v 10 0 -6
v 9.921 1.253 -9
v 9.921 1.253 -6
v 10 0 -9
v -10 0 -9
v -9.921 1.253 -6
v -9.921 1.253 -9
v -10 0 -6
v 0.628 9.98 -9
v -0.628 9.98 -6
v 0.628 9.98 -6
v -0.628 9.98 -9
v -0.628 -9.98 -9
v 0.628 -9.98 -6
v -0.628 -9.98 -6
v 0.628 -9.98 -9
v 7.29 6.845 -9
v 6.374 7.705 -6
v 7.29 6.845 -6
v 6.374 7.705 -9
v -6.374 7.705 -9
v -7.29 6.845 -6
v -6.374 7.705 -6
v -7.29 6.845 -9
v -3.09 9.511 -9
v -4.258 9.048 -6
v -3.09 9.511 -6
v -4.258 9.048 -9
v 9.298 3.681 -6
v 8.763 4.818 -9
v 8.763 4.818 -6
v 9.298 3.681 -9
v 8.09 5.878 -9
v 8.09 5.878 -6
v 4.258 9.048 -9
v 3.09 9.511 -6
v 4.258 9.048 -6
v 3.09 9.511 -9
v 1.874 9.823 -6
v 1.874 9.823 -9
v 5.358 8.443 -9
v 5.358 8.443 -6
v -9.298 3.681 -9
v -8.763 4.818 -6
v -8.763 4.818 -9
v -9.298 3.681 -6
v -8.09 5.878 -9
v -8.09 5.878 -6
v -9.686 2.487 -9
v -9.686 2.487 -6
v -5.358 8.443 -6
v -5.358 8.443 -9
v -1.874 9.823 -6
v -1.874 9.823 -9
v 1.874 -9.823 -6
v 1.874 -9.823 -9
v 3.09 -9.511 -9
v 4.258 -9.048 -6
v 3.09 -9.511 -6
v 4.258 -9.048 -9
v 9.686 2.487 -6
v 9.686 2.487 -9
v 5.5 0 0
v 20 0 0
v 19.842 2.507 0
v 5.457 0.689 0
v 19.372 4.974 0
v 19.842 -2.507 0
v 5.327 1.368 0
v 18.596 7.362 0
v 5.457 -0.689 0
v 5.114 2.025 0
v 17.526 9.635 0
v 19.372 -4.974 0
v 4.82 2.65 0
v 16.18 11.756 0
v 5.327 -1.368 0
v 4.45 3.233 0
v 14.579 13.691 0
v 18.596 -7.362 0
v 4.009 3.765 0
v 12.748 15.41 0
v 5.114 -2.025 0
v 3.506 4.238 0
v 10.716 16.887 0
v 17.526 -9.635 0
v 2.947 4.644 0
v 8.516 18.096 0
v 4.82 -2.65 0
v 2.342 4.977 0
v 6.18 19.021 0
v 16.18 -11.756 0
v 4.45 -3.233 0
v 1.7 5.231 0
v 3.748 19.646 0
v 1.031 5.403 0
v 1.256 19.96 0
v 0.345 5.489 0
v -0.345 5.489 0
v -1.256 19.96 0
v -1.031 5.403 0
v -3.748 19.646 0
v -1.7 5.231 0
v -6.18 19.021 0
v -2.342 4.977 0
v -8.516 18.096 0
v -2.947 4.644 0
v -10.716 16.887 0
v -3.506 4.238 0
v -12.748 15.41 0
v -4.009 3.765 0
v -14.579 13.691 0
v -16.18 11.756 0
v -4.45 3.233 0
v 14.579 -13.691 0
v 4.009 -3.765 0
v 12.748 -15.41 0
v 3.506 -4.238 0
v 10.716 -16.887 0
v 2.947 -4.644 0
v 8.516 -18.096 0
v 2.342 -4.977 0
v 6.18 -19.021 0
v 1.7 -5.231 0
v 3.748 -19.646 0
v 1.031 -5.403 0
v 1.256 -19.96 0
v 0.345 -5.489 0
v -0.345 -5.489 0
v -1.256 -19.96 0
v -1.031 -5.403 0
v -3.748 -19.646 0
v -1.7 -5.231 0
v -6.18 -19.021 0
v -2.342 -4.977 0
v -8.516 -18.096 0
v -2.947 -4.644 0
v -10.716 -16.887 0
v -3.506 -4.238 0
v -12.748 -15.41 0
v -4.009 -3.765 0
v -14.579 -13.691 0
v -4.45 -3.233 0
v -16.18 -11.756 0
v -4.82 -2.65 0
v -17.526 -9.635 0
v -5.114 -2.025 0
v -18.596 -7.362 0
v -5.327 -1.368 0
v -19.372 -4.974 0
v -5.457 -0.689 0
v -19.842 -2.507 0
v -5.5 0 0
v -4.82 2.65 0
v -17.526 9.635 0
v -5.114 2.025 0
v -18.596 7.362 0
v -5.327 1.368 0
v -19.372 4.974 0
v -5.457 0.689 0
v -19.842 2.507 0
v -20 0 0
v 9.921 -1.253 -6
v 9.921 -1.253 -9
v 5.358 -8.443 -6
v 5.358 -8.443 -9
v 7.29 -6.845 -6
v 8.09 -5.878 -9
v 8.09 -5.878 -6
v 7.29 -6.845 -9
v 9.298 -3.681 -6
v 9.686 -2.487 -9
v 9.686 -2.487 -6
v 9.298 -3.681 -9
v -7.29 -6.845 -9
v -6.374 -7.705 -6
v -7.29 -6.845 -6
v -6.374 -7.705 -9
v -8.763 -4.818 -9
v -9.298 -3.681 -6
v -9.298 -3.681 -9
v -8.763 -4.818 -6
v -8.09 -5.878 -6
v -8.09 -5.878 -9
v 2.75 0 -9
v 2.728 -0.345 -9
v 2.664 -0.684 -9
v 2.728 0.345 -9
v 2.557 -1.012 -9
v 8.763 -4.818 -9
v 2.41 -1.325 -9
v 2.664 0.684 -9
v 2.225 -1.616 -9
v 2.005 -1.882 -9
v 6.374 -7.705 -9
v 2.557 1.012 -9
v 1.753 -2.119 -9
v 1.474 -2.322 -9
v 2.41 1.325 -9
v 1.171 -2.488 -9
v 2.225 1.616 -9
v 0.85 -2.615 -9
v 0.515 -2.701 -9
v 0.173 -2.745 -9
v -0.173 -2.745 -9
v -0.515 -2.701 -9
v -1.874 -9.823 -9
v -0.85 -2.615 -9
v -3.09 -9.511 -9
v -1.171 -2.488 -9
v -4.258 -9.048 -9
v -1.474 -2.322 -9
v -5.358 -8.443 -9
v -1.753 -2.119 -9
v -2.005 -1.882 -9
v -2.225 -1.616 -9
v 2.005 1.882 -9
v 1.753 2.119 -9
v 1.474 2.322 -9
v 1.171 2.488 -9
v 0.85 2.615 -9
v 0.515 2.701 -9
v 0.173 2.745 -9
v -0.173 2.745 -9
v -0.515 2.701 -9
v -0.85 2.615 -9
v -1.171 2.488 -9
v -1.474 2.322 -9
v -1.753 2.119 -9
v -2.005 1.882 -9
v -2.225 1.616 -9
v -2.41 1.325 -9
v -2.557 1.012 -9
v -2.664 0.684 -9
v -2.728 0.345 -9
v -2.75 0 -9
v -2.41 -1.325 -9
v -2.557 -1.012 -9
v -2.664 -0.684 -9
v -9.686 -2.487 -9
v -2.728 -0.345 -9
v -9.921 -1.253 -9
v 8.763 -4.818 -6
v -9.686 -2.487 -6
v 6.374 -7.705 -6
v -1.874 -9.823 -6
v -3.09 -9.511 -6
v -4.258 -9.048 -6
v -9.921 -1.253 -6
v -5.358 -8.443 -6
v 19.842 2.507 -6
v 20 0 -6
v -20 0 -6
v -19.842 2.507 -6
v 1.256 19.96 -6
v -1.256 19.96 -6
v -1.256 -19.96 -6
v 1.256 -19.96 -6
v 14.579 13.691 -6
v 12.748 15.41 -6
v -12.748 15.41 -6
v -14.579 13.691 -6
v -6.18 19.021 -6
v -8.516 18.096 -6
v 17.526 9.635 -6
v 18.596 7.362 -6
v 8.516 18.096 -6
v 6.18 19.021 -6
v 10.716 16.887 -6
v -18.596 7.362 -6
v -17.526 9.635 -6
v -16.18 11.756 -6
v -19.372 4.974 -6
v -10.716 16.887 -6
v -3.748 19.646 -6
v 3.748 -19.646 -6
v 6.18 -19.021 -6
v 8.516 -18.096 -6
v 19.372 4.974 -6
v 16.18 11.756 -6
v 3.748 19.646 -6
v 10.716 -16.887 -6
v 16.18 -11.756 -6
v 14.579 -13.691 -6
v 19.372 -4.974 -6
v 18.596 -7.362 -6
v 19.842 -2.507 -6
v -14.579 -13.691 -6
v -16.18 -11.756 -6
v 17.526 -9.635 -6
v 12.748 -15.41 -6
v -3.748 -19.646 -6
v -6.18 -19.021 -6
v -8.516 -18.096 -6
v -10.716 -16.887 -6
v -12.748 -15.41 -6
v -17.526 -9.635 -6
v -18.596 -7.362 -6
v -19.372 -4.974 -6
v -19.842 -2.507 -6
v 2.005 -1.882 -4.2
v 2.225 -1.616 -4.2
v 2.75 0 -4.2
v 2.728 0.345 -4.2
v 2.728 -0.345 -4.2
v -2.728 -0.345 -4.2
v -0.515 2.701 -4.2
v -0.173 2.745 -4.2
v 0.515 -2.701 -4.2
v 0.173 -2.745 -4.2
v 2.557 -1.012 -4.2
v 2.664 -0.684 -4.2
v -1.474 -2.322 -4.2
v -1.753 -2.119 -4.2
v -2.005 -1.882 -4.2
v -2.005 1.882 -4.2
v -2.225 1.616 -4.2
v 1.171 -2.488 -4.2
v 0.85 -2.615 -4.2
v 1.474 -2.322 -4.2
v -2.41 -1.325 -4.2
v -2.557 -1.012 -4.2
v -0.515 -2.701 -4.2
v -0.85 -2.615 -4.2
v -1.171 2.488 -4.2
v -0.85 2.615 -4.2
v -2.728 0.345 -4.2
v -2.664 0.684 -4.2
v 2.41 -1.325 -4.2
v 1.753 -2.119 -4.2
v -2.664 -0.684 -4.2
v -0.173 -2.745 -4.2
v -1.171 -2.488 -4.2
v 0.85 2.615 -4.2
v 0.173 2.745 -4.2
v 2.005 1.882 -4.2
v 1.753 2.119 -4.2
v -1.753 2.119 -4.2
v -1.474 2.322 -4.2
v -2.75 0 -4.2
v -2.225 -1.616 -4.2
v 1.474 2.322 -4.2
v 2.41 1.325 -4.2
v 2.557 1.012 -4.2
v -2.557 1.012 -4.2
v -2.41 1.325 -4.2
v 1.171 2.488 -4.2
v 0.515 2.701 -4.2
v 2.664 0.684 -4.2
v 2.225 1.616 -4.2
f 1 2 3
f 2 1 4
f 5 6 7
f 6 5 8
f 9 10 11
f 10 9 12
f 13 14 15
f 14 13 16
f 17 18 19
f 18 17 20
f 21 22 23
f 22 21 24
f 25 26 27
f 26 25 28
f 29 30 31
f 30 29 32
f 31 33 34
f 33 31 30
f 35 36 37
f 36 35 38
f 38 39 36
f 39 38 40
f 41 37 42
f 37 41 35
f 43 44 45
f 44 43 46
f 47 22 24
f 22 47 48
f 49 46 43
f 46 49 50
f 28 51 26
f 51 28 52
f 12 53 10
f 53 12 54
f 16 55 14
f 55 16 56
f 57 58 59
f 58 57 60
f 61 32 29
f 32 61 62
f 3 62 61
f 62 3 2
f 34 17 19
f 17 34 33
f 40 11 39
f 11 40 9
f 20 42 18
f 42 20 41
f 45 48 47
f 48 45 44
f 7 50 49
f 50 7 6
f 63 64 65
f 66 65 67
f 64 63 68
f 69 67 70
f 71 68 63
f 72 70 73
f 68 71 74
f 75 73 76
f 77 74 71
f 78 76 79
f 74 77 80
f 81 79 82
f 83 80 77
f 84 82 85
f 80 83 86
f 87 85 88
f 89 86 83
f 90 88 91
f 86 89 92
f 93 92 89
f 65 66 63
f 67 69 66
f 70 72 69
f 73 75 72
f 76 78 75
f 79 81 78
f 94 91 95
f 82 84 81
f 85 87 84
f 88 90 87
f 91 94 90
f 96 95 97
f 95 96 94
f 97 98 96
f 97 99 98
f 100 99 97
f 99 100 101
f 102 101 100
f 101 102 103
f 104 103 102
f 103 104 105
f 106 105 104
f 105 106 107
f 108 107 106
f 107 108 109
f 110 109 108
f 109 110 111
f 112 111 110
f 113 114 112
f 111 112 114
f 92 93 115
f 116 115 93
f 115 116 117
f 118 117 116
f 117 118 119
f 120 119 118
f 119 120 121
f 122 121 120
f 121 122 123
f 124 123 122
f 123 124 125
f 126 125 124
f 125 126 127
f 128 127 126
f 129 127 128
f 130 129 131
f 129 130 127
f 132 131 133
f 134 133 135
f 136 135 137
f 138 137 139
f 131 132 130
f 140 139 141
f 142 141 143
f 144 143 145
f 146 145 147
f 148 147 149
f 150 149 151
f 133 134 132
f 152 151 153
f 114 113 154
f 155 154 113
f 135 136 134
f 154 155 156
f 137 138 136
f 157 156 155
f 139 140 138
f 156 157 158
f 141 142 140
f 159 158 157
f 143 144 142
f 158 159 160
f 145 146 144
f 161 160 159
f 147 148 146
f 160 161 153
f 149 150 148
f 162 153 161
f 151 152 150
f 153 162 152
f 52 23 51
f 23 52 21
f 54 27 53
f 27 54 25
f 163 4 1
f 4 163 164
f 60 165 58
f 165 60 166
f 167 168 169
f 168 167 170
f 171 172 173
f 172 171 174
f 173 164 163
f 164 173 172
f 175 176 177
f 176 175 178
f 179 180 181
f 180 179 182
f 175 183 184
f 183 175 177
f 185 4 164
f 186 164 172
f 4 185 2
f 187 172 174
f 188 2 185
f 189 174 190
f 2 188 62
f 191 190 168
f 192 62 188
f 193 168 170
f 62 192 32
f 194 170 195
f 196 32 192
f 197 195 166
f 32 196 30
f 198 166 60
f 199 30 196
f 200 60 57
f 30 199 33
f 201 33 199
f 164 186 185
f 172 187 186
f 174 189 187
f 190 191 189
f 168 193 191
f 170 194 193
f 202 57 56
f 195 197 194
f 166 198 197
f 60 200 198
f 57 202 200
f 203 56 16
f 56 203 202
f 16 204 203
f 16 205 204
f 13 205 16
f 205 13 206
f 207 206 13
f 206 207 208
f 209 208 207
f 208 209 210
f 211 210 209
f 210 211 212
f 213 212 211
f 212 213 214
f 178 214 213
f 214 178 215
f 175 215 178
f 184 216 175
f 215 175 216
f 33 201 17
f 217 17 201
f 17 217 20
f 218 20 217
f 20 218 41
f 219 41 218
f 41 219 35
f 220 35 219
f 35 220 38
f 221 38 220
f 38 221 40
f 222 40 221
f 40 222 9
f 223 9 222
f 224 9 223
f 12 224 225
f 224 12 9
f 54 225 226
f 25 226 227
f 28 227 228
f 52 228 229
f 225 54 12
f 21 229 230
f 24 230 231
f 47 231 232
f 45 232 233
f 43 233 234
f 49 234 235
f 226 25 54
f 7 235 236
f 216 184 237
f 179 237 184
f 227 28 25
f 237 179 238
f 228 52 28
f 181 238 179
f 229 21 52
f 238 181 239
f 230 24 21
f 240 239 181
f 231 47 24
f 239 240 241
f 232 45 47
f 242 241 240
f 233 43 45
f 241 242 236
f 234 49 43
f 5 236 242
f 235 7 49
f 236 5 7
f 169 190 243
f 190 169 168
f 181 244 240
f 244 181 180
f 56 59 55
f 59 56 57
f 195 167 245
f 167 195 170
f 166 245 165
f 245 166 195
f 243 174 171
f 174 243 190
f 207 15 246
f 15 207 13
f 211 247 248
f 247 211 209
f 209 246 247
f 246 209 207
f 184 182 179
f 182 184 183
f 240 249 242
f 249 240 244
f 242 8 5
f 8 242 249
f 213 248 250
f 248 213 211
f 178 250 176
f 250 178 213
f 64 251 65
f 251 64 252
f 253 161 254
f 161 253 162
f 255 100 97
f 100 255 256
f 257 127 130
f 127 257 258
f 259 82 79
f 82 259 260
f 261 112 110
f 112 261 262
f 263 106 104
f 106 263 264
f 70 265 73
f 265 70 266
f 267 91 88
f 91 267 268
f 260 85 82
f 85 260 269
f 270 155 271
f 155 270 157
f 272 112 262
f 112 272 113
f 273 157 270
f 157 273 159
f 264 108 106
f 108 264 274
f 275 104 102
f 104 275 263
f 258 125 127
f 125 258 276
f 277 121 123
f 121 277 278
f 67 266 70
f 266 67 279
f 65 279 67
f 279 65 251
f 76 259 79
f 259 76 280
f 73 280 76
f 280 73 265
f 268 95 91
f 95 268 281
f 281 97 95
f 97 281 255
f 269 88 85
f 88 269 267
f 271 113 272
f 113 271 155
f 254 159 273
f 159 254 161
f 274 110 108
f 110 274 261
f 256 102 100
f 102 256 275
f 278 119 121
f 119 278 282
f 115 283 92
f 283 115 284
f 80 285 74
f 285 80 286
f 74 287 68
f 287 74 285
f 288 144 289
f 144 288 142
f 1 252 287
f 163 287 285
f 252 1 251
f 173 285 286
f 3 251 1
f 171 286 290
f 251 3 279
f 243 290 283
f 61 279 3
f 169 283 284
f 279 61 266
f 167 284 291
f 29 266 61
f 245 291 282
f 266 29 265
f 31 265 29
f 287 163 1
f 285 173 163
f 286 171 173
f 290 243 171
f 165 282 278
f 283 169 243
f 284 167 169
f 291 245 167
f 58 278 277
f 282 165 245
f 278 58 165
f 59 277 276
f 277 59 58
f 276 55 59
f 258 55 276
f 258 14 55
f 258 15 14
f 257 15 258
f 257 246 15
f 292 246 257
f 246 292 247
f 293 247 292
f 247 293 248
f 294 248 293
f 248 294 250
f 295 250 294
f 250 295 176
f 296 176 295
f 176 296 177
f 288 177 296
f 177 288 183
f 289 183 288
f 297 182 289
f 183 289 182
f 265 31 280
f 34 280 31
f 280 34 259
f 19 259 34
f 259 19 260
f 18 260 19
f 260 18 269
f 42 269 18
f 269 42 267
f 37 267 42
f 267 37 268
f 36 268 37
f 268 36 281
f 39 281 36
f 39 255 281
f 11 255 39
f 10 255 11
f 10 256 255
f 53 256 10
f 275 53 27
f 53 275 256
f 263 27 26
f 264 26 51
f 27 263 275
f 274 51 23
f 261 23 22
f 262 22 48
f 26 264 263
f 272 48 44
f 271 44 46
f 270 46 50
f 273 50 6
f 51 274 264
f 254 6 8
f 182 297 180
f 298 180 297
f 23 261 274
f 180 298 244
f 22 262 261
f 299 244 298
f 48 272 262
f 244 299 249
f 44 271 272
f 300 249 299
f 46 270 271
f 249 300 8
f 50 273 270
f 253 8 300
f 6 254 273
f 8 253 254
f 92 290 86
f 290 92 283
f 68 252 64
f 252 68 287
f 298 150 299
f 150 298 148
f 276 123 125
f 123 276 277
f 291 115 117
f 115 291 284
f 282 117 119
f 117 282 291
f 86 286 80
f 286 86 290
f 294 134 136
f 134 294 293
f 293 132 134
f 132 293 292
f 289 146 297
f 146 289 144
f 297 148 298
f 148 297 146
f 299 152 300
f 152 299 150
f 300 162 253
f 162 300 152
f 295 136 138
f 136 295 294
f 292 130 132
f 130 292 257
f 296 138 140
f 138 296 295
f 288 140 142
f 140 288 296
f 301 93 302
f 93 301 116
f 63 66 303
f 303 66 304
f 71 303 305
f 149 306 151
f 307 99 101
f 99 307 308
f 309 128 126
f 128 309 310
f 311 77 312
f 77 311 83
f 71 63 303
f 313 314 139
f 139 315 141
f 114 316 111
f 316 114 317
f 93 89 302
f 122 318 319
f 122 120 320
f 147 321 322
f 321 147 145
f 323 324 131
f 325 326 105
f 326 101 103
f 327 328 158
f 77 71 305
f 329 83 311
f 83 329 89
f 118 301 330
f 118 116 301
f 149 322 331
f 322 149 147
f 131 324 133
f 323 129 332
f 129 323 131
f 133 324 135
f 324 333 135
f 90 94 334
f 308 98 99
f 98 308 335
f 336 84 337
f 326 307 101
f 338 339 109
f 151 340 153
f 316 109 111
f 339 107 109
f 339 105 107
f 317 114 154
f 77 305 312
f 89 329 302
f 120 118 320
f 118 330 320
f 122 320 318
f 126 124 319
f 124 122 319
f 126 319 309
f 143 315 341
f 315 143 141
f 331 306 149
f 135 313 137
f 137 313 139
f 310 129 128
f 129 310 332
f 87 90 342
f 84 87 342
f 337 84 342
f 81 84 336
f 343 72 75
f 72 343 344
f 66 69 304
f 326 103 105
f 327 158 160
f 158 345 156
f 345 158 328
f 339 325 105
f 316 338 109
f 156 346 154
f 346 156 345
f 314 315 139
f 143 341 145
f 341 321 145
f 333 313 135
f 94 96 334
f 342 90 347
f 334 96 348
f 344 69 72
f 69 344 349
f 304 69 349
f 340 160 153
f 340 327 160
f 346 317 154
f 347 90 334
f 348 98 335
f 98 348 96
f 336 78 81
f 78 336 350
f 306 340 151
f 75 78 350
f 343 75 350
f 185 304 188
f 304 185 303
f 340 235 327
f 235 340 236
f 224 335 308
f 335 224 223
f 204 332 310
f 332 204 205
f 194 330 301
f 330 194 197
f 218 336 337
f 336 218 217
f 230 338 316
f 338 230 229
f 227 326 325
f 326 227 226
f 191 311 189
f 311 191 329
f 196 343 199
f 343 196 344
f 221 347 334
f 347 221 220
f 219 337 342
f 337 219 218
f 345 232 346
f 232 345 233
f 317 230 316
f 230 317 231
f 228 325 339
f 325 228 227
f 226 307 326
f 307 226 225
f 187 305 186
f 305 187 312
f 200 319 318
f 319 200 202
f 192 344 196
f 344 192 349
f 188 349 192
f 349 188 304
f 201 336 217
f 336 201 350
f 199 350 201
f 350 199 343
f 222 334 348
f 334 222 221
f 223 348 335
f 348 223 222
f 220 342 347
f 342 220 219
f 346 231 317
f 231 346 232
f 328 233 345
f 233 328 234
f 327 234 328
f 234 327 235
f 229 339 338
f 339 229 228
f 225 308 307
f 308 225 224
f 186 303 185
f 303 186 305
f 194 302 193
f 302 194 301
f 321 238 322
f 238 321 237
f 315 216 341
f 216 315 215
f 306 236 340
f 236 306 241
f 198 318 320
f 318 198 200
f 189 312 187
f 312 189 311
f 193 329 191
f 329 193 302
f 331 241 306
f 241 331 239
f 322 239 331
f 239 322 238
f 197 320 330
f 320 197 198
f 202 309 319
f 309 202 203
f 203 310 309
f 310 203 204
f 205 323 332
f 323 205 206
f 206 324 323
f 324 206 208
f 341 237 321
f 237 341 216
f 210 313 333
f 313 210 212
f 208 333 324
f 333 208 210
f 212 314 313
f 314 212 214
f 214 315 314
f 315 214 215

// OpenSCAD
$fn = 50;


difference() {
	union() {
		translate(v = [0, 0, -9.0000000000]) {
			cylinder(h = 9, r = 10.0000000000);
		}
		translate(v = [0, 0, -6.0000000000]) {
			cylinder(h = 6, r = 20.0000000000);
		}
	}
	union() {
		translate(v = [0, 0, 0]) {
			rotate(a = [0, 0, 0]) {
				difference() {
					union() {
						#translate(v = [0, 0, -9.0000000000]) {
							cylinder(h = 9, r = 2.2500000000);
						}
						#translate(v = [0, 0, -4.2000000000]) {
							cylinder(h = 4.2000000000, r = 10.0000000000, r1 = 2.7500000000, r2 = 5.5000000000);
						}
						#translate(v = [0, 0, -9.0000000000]) {
							cylinder(h = 9, r = 2.7500000000);
						}
						#translate(v = [0, 0, -9.0000000000]) {
							cylinder(h = 9, r = 2.2500000000);
						}
					}
					union();
				}
			}
		}
	}
}
